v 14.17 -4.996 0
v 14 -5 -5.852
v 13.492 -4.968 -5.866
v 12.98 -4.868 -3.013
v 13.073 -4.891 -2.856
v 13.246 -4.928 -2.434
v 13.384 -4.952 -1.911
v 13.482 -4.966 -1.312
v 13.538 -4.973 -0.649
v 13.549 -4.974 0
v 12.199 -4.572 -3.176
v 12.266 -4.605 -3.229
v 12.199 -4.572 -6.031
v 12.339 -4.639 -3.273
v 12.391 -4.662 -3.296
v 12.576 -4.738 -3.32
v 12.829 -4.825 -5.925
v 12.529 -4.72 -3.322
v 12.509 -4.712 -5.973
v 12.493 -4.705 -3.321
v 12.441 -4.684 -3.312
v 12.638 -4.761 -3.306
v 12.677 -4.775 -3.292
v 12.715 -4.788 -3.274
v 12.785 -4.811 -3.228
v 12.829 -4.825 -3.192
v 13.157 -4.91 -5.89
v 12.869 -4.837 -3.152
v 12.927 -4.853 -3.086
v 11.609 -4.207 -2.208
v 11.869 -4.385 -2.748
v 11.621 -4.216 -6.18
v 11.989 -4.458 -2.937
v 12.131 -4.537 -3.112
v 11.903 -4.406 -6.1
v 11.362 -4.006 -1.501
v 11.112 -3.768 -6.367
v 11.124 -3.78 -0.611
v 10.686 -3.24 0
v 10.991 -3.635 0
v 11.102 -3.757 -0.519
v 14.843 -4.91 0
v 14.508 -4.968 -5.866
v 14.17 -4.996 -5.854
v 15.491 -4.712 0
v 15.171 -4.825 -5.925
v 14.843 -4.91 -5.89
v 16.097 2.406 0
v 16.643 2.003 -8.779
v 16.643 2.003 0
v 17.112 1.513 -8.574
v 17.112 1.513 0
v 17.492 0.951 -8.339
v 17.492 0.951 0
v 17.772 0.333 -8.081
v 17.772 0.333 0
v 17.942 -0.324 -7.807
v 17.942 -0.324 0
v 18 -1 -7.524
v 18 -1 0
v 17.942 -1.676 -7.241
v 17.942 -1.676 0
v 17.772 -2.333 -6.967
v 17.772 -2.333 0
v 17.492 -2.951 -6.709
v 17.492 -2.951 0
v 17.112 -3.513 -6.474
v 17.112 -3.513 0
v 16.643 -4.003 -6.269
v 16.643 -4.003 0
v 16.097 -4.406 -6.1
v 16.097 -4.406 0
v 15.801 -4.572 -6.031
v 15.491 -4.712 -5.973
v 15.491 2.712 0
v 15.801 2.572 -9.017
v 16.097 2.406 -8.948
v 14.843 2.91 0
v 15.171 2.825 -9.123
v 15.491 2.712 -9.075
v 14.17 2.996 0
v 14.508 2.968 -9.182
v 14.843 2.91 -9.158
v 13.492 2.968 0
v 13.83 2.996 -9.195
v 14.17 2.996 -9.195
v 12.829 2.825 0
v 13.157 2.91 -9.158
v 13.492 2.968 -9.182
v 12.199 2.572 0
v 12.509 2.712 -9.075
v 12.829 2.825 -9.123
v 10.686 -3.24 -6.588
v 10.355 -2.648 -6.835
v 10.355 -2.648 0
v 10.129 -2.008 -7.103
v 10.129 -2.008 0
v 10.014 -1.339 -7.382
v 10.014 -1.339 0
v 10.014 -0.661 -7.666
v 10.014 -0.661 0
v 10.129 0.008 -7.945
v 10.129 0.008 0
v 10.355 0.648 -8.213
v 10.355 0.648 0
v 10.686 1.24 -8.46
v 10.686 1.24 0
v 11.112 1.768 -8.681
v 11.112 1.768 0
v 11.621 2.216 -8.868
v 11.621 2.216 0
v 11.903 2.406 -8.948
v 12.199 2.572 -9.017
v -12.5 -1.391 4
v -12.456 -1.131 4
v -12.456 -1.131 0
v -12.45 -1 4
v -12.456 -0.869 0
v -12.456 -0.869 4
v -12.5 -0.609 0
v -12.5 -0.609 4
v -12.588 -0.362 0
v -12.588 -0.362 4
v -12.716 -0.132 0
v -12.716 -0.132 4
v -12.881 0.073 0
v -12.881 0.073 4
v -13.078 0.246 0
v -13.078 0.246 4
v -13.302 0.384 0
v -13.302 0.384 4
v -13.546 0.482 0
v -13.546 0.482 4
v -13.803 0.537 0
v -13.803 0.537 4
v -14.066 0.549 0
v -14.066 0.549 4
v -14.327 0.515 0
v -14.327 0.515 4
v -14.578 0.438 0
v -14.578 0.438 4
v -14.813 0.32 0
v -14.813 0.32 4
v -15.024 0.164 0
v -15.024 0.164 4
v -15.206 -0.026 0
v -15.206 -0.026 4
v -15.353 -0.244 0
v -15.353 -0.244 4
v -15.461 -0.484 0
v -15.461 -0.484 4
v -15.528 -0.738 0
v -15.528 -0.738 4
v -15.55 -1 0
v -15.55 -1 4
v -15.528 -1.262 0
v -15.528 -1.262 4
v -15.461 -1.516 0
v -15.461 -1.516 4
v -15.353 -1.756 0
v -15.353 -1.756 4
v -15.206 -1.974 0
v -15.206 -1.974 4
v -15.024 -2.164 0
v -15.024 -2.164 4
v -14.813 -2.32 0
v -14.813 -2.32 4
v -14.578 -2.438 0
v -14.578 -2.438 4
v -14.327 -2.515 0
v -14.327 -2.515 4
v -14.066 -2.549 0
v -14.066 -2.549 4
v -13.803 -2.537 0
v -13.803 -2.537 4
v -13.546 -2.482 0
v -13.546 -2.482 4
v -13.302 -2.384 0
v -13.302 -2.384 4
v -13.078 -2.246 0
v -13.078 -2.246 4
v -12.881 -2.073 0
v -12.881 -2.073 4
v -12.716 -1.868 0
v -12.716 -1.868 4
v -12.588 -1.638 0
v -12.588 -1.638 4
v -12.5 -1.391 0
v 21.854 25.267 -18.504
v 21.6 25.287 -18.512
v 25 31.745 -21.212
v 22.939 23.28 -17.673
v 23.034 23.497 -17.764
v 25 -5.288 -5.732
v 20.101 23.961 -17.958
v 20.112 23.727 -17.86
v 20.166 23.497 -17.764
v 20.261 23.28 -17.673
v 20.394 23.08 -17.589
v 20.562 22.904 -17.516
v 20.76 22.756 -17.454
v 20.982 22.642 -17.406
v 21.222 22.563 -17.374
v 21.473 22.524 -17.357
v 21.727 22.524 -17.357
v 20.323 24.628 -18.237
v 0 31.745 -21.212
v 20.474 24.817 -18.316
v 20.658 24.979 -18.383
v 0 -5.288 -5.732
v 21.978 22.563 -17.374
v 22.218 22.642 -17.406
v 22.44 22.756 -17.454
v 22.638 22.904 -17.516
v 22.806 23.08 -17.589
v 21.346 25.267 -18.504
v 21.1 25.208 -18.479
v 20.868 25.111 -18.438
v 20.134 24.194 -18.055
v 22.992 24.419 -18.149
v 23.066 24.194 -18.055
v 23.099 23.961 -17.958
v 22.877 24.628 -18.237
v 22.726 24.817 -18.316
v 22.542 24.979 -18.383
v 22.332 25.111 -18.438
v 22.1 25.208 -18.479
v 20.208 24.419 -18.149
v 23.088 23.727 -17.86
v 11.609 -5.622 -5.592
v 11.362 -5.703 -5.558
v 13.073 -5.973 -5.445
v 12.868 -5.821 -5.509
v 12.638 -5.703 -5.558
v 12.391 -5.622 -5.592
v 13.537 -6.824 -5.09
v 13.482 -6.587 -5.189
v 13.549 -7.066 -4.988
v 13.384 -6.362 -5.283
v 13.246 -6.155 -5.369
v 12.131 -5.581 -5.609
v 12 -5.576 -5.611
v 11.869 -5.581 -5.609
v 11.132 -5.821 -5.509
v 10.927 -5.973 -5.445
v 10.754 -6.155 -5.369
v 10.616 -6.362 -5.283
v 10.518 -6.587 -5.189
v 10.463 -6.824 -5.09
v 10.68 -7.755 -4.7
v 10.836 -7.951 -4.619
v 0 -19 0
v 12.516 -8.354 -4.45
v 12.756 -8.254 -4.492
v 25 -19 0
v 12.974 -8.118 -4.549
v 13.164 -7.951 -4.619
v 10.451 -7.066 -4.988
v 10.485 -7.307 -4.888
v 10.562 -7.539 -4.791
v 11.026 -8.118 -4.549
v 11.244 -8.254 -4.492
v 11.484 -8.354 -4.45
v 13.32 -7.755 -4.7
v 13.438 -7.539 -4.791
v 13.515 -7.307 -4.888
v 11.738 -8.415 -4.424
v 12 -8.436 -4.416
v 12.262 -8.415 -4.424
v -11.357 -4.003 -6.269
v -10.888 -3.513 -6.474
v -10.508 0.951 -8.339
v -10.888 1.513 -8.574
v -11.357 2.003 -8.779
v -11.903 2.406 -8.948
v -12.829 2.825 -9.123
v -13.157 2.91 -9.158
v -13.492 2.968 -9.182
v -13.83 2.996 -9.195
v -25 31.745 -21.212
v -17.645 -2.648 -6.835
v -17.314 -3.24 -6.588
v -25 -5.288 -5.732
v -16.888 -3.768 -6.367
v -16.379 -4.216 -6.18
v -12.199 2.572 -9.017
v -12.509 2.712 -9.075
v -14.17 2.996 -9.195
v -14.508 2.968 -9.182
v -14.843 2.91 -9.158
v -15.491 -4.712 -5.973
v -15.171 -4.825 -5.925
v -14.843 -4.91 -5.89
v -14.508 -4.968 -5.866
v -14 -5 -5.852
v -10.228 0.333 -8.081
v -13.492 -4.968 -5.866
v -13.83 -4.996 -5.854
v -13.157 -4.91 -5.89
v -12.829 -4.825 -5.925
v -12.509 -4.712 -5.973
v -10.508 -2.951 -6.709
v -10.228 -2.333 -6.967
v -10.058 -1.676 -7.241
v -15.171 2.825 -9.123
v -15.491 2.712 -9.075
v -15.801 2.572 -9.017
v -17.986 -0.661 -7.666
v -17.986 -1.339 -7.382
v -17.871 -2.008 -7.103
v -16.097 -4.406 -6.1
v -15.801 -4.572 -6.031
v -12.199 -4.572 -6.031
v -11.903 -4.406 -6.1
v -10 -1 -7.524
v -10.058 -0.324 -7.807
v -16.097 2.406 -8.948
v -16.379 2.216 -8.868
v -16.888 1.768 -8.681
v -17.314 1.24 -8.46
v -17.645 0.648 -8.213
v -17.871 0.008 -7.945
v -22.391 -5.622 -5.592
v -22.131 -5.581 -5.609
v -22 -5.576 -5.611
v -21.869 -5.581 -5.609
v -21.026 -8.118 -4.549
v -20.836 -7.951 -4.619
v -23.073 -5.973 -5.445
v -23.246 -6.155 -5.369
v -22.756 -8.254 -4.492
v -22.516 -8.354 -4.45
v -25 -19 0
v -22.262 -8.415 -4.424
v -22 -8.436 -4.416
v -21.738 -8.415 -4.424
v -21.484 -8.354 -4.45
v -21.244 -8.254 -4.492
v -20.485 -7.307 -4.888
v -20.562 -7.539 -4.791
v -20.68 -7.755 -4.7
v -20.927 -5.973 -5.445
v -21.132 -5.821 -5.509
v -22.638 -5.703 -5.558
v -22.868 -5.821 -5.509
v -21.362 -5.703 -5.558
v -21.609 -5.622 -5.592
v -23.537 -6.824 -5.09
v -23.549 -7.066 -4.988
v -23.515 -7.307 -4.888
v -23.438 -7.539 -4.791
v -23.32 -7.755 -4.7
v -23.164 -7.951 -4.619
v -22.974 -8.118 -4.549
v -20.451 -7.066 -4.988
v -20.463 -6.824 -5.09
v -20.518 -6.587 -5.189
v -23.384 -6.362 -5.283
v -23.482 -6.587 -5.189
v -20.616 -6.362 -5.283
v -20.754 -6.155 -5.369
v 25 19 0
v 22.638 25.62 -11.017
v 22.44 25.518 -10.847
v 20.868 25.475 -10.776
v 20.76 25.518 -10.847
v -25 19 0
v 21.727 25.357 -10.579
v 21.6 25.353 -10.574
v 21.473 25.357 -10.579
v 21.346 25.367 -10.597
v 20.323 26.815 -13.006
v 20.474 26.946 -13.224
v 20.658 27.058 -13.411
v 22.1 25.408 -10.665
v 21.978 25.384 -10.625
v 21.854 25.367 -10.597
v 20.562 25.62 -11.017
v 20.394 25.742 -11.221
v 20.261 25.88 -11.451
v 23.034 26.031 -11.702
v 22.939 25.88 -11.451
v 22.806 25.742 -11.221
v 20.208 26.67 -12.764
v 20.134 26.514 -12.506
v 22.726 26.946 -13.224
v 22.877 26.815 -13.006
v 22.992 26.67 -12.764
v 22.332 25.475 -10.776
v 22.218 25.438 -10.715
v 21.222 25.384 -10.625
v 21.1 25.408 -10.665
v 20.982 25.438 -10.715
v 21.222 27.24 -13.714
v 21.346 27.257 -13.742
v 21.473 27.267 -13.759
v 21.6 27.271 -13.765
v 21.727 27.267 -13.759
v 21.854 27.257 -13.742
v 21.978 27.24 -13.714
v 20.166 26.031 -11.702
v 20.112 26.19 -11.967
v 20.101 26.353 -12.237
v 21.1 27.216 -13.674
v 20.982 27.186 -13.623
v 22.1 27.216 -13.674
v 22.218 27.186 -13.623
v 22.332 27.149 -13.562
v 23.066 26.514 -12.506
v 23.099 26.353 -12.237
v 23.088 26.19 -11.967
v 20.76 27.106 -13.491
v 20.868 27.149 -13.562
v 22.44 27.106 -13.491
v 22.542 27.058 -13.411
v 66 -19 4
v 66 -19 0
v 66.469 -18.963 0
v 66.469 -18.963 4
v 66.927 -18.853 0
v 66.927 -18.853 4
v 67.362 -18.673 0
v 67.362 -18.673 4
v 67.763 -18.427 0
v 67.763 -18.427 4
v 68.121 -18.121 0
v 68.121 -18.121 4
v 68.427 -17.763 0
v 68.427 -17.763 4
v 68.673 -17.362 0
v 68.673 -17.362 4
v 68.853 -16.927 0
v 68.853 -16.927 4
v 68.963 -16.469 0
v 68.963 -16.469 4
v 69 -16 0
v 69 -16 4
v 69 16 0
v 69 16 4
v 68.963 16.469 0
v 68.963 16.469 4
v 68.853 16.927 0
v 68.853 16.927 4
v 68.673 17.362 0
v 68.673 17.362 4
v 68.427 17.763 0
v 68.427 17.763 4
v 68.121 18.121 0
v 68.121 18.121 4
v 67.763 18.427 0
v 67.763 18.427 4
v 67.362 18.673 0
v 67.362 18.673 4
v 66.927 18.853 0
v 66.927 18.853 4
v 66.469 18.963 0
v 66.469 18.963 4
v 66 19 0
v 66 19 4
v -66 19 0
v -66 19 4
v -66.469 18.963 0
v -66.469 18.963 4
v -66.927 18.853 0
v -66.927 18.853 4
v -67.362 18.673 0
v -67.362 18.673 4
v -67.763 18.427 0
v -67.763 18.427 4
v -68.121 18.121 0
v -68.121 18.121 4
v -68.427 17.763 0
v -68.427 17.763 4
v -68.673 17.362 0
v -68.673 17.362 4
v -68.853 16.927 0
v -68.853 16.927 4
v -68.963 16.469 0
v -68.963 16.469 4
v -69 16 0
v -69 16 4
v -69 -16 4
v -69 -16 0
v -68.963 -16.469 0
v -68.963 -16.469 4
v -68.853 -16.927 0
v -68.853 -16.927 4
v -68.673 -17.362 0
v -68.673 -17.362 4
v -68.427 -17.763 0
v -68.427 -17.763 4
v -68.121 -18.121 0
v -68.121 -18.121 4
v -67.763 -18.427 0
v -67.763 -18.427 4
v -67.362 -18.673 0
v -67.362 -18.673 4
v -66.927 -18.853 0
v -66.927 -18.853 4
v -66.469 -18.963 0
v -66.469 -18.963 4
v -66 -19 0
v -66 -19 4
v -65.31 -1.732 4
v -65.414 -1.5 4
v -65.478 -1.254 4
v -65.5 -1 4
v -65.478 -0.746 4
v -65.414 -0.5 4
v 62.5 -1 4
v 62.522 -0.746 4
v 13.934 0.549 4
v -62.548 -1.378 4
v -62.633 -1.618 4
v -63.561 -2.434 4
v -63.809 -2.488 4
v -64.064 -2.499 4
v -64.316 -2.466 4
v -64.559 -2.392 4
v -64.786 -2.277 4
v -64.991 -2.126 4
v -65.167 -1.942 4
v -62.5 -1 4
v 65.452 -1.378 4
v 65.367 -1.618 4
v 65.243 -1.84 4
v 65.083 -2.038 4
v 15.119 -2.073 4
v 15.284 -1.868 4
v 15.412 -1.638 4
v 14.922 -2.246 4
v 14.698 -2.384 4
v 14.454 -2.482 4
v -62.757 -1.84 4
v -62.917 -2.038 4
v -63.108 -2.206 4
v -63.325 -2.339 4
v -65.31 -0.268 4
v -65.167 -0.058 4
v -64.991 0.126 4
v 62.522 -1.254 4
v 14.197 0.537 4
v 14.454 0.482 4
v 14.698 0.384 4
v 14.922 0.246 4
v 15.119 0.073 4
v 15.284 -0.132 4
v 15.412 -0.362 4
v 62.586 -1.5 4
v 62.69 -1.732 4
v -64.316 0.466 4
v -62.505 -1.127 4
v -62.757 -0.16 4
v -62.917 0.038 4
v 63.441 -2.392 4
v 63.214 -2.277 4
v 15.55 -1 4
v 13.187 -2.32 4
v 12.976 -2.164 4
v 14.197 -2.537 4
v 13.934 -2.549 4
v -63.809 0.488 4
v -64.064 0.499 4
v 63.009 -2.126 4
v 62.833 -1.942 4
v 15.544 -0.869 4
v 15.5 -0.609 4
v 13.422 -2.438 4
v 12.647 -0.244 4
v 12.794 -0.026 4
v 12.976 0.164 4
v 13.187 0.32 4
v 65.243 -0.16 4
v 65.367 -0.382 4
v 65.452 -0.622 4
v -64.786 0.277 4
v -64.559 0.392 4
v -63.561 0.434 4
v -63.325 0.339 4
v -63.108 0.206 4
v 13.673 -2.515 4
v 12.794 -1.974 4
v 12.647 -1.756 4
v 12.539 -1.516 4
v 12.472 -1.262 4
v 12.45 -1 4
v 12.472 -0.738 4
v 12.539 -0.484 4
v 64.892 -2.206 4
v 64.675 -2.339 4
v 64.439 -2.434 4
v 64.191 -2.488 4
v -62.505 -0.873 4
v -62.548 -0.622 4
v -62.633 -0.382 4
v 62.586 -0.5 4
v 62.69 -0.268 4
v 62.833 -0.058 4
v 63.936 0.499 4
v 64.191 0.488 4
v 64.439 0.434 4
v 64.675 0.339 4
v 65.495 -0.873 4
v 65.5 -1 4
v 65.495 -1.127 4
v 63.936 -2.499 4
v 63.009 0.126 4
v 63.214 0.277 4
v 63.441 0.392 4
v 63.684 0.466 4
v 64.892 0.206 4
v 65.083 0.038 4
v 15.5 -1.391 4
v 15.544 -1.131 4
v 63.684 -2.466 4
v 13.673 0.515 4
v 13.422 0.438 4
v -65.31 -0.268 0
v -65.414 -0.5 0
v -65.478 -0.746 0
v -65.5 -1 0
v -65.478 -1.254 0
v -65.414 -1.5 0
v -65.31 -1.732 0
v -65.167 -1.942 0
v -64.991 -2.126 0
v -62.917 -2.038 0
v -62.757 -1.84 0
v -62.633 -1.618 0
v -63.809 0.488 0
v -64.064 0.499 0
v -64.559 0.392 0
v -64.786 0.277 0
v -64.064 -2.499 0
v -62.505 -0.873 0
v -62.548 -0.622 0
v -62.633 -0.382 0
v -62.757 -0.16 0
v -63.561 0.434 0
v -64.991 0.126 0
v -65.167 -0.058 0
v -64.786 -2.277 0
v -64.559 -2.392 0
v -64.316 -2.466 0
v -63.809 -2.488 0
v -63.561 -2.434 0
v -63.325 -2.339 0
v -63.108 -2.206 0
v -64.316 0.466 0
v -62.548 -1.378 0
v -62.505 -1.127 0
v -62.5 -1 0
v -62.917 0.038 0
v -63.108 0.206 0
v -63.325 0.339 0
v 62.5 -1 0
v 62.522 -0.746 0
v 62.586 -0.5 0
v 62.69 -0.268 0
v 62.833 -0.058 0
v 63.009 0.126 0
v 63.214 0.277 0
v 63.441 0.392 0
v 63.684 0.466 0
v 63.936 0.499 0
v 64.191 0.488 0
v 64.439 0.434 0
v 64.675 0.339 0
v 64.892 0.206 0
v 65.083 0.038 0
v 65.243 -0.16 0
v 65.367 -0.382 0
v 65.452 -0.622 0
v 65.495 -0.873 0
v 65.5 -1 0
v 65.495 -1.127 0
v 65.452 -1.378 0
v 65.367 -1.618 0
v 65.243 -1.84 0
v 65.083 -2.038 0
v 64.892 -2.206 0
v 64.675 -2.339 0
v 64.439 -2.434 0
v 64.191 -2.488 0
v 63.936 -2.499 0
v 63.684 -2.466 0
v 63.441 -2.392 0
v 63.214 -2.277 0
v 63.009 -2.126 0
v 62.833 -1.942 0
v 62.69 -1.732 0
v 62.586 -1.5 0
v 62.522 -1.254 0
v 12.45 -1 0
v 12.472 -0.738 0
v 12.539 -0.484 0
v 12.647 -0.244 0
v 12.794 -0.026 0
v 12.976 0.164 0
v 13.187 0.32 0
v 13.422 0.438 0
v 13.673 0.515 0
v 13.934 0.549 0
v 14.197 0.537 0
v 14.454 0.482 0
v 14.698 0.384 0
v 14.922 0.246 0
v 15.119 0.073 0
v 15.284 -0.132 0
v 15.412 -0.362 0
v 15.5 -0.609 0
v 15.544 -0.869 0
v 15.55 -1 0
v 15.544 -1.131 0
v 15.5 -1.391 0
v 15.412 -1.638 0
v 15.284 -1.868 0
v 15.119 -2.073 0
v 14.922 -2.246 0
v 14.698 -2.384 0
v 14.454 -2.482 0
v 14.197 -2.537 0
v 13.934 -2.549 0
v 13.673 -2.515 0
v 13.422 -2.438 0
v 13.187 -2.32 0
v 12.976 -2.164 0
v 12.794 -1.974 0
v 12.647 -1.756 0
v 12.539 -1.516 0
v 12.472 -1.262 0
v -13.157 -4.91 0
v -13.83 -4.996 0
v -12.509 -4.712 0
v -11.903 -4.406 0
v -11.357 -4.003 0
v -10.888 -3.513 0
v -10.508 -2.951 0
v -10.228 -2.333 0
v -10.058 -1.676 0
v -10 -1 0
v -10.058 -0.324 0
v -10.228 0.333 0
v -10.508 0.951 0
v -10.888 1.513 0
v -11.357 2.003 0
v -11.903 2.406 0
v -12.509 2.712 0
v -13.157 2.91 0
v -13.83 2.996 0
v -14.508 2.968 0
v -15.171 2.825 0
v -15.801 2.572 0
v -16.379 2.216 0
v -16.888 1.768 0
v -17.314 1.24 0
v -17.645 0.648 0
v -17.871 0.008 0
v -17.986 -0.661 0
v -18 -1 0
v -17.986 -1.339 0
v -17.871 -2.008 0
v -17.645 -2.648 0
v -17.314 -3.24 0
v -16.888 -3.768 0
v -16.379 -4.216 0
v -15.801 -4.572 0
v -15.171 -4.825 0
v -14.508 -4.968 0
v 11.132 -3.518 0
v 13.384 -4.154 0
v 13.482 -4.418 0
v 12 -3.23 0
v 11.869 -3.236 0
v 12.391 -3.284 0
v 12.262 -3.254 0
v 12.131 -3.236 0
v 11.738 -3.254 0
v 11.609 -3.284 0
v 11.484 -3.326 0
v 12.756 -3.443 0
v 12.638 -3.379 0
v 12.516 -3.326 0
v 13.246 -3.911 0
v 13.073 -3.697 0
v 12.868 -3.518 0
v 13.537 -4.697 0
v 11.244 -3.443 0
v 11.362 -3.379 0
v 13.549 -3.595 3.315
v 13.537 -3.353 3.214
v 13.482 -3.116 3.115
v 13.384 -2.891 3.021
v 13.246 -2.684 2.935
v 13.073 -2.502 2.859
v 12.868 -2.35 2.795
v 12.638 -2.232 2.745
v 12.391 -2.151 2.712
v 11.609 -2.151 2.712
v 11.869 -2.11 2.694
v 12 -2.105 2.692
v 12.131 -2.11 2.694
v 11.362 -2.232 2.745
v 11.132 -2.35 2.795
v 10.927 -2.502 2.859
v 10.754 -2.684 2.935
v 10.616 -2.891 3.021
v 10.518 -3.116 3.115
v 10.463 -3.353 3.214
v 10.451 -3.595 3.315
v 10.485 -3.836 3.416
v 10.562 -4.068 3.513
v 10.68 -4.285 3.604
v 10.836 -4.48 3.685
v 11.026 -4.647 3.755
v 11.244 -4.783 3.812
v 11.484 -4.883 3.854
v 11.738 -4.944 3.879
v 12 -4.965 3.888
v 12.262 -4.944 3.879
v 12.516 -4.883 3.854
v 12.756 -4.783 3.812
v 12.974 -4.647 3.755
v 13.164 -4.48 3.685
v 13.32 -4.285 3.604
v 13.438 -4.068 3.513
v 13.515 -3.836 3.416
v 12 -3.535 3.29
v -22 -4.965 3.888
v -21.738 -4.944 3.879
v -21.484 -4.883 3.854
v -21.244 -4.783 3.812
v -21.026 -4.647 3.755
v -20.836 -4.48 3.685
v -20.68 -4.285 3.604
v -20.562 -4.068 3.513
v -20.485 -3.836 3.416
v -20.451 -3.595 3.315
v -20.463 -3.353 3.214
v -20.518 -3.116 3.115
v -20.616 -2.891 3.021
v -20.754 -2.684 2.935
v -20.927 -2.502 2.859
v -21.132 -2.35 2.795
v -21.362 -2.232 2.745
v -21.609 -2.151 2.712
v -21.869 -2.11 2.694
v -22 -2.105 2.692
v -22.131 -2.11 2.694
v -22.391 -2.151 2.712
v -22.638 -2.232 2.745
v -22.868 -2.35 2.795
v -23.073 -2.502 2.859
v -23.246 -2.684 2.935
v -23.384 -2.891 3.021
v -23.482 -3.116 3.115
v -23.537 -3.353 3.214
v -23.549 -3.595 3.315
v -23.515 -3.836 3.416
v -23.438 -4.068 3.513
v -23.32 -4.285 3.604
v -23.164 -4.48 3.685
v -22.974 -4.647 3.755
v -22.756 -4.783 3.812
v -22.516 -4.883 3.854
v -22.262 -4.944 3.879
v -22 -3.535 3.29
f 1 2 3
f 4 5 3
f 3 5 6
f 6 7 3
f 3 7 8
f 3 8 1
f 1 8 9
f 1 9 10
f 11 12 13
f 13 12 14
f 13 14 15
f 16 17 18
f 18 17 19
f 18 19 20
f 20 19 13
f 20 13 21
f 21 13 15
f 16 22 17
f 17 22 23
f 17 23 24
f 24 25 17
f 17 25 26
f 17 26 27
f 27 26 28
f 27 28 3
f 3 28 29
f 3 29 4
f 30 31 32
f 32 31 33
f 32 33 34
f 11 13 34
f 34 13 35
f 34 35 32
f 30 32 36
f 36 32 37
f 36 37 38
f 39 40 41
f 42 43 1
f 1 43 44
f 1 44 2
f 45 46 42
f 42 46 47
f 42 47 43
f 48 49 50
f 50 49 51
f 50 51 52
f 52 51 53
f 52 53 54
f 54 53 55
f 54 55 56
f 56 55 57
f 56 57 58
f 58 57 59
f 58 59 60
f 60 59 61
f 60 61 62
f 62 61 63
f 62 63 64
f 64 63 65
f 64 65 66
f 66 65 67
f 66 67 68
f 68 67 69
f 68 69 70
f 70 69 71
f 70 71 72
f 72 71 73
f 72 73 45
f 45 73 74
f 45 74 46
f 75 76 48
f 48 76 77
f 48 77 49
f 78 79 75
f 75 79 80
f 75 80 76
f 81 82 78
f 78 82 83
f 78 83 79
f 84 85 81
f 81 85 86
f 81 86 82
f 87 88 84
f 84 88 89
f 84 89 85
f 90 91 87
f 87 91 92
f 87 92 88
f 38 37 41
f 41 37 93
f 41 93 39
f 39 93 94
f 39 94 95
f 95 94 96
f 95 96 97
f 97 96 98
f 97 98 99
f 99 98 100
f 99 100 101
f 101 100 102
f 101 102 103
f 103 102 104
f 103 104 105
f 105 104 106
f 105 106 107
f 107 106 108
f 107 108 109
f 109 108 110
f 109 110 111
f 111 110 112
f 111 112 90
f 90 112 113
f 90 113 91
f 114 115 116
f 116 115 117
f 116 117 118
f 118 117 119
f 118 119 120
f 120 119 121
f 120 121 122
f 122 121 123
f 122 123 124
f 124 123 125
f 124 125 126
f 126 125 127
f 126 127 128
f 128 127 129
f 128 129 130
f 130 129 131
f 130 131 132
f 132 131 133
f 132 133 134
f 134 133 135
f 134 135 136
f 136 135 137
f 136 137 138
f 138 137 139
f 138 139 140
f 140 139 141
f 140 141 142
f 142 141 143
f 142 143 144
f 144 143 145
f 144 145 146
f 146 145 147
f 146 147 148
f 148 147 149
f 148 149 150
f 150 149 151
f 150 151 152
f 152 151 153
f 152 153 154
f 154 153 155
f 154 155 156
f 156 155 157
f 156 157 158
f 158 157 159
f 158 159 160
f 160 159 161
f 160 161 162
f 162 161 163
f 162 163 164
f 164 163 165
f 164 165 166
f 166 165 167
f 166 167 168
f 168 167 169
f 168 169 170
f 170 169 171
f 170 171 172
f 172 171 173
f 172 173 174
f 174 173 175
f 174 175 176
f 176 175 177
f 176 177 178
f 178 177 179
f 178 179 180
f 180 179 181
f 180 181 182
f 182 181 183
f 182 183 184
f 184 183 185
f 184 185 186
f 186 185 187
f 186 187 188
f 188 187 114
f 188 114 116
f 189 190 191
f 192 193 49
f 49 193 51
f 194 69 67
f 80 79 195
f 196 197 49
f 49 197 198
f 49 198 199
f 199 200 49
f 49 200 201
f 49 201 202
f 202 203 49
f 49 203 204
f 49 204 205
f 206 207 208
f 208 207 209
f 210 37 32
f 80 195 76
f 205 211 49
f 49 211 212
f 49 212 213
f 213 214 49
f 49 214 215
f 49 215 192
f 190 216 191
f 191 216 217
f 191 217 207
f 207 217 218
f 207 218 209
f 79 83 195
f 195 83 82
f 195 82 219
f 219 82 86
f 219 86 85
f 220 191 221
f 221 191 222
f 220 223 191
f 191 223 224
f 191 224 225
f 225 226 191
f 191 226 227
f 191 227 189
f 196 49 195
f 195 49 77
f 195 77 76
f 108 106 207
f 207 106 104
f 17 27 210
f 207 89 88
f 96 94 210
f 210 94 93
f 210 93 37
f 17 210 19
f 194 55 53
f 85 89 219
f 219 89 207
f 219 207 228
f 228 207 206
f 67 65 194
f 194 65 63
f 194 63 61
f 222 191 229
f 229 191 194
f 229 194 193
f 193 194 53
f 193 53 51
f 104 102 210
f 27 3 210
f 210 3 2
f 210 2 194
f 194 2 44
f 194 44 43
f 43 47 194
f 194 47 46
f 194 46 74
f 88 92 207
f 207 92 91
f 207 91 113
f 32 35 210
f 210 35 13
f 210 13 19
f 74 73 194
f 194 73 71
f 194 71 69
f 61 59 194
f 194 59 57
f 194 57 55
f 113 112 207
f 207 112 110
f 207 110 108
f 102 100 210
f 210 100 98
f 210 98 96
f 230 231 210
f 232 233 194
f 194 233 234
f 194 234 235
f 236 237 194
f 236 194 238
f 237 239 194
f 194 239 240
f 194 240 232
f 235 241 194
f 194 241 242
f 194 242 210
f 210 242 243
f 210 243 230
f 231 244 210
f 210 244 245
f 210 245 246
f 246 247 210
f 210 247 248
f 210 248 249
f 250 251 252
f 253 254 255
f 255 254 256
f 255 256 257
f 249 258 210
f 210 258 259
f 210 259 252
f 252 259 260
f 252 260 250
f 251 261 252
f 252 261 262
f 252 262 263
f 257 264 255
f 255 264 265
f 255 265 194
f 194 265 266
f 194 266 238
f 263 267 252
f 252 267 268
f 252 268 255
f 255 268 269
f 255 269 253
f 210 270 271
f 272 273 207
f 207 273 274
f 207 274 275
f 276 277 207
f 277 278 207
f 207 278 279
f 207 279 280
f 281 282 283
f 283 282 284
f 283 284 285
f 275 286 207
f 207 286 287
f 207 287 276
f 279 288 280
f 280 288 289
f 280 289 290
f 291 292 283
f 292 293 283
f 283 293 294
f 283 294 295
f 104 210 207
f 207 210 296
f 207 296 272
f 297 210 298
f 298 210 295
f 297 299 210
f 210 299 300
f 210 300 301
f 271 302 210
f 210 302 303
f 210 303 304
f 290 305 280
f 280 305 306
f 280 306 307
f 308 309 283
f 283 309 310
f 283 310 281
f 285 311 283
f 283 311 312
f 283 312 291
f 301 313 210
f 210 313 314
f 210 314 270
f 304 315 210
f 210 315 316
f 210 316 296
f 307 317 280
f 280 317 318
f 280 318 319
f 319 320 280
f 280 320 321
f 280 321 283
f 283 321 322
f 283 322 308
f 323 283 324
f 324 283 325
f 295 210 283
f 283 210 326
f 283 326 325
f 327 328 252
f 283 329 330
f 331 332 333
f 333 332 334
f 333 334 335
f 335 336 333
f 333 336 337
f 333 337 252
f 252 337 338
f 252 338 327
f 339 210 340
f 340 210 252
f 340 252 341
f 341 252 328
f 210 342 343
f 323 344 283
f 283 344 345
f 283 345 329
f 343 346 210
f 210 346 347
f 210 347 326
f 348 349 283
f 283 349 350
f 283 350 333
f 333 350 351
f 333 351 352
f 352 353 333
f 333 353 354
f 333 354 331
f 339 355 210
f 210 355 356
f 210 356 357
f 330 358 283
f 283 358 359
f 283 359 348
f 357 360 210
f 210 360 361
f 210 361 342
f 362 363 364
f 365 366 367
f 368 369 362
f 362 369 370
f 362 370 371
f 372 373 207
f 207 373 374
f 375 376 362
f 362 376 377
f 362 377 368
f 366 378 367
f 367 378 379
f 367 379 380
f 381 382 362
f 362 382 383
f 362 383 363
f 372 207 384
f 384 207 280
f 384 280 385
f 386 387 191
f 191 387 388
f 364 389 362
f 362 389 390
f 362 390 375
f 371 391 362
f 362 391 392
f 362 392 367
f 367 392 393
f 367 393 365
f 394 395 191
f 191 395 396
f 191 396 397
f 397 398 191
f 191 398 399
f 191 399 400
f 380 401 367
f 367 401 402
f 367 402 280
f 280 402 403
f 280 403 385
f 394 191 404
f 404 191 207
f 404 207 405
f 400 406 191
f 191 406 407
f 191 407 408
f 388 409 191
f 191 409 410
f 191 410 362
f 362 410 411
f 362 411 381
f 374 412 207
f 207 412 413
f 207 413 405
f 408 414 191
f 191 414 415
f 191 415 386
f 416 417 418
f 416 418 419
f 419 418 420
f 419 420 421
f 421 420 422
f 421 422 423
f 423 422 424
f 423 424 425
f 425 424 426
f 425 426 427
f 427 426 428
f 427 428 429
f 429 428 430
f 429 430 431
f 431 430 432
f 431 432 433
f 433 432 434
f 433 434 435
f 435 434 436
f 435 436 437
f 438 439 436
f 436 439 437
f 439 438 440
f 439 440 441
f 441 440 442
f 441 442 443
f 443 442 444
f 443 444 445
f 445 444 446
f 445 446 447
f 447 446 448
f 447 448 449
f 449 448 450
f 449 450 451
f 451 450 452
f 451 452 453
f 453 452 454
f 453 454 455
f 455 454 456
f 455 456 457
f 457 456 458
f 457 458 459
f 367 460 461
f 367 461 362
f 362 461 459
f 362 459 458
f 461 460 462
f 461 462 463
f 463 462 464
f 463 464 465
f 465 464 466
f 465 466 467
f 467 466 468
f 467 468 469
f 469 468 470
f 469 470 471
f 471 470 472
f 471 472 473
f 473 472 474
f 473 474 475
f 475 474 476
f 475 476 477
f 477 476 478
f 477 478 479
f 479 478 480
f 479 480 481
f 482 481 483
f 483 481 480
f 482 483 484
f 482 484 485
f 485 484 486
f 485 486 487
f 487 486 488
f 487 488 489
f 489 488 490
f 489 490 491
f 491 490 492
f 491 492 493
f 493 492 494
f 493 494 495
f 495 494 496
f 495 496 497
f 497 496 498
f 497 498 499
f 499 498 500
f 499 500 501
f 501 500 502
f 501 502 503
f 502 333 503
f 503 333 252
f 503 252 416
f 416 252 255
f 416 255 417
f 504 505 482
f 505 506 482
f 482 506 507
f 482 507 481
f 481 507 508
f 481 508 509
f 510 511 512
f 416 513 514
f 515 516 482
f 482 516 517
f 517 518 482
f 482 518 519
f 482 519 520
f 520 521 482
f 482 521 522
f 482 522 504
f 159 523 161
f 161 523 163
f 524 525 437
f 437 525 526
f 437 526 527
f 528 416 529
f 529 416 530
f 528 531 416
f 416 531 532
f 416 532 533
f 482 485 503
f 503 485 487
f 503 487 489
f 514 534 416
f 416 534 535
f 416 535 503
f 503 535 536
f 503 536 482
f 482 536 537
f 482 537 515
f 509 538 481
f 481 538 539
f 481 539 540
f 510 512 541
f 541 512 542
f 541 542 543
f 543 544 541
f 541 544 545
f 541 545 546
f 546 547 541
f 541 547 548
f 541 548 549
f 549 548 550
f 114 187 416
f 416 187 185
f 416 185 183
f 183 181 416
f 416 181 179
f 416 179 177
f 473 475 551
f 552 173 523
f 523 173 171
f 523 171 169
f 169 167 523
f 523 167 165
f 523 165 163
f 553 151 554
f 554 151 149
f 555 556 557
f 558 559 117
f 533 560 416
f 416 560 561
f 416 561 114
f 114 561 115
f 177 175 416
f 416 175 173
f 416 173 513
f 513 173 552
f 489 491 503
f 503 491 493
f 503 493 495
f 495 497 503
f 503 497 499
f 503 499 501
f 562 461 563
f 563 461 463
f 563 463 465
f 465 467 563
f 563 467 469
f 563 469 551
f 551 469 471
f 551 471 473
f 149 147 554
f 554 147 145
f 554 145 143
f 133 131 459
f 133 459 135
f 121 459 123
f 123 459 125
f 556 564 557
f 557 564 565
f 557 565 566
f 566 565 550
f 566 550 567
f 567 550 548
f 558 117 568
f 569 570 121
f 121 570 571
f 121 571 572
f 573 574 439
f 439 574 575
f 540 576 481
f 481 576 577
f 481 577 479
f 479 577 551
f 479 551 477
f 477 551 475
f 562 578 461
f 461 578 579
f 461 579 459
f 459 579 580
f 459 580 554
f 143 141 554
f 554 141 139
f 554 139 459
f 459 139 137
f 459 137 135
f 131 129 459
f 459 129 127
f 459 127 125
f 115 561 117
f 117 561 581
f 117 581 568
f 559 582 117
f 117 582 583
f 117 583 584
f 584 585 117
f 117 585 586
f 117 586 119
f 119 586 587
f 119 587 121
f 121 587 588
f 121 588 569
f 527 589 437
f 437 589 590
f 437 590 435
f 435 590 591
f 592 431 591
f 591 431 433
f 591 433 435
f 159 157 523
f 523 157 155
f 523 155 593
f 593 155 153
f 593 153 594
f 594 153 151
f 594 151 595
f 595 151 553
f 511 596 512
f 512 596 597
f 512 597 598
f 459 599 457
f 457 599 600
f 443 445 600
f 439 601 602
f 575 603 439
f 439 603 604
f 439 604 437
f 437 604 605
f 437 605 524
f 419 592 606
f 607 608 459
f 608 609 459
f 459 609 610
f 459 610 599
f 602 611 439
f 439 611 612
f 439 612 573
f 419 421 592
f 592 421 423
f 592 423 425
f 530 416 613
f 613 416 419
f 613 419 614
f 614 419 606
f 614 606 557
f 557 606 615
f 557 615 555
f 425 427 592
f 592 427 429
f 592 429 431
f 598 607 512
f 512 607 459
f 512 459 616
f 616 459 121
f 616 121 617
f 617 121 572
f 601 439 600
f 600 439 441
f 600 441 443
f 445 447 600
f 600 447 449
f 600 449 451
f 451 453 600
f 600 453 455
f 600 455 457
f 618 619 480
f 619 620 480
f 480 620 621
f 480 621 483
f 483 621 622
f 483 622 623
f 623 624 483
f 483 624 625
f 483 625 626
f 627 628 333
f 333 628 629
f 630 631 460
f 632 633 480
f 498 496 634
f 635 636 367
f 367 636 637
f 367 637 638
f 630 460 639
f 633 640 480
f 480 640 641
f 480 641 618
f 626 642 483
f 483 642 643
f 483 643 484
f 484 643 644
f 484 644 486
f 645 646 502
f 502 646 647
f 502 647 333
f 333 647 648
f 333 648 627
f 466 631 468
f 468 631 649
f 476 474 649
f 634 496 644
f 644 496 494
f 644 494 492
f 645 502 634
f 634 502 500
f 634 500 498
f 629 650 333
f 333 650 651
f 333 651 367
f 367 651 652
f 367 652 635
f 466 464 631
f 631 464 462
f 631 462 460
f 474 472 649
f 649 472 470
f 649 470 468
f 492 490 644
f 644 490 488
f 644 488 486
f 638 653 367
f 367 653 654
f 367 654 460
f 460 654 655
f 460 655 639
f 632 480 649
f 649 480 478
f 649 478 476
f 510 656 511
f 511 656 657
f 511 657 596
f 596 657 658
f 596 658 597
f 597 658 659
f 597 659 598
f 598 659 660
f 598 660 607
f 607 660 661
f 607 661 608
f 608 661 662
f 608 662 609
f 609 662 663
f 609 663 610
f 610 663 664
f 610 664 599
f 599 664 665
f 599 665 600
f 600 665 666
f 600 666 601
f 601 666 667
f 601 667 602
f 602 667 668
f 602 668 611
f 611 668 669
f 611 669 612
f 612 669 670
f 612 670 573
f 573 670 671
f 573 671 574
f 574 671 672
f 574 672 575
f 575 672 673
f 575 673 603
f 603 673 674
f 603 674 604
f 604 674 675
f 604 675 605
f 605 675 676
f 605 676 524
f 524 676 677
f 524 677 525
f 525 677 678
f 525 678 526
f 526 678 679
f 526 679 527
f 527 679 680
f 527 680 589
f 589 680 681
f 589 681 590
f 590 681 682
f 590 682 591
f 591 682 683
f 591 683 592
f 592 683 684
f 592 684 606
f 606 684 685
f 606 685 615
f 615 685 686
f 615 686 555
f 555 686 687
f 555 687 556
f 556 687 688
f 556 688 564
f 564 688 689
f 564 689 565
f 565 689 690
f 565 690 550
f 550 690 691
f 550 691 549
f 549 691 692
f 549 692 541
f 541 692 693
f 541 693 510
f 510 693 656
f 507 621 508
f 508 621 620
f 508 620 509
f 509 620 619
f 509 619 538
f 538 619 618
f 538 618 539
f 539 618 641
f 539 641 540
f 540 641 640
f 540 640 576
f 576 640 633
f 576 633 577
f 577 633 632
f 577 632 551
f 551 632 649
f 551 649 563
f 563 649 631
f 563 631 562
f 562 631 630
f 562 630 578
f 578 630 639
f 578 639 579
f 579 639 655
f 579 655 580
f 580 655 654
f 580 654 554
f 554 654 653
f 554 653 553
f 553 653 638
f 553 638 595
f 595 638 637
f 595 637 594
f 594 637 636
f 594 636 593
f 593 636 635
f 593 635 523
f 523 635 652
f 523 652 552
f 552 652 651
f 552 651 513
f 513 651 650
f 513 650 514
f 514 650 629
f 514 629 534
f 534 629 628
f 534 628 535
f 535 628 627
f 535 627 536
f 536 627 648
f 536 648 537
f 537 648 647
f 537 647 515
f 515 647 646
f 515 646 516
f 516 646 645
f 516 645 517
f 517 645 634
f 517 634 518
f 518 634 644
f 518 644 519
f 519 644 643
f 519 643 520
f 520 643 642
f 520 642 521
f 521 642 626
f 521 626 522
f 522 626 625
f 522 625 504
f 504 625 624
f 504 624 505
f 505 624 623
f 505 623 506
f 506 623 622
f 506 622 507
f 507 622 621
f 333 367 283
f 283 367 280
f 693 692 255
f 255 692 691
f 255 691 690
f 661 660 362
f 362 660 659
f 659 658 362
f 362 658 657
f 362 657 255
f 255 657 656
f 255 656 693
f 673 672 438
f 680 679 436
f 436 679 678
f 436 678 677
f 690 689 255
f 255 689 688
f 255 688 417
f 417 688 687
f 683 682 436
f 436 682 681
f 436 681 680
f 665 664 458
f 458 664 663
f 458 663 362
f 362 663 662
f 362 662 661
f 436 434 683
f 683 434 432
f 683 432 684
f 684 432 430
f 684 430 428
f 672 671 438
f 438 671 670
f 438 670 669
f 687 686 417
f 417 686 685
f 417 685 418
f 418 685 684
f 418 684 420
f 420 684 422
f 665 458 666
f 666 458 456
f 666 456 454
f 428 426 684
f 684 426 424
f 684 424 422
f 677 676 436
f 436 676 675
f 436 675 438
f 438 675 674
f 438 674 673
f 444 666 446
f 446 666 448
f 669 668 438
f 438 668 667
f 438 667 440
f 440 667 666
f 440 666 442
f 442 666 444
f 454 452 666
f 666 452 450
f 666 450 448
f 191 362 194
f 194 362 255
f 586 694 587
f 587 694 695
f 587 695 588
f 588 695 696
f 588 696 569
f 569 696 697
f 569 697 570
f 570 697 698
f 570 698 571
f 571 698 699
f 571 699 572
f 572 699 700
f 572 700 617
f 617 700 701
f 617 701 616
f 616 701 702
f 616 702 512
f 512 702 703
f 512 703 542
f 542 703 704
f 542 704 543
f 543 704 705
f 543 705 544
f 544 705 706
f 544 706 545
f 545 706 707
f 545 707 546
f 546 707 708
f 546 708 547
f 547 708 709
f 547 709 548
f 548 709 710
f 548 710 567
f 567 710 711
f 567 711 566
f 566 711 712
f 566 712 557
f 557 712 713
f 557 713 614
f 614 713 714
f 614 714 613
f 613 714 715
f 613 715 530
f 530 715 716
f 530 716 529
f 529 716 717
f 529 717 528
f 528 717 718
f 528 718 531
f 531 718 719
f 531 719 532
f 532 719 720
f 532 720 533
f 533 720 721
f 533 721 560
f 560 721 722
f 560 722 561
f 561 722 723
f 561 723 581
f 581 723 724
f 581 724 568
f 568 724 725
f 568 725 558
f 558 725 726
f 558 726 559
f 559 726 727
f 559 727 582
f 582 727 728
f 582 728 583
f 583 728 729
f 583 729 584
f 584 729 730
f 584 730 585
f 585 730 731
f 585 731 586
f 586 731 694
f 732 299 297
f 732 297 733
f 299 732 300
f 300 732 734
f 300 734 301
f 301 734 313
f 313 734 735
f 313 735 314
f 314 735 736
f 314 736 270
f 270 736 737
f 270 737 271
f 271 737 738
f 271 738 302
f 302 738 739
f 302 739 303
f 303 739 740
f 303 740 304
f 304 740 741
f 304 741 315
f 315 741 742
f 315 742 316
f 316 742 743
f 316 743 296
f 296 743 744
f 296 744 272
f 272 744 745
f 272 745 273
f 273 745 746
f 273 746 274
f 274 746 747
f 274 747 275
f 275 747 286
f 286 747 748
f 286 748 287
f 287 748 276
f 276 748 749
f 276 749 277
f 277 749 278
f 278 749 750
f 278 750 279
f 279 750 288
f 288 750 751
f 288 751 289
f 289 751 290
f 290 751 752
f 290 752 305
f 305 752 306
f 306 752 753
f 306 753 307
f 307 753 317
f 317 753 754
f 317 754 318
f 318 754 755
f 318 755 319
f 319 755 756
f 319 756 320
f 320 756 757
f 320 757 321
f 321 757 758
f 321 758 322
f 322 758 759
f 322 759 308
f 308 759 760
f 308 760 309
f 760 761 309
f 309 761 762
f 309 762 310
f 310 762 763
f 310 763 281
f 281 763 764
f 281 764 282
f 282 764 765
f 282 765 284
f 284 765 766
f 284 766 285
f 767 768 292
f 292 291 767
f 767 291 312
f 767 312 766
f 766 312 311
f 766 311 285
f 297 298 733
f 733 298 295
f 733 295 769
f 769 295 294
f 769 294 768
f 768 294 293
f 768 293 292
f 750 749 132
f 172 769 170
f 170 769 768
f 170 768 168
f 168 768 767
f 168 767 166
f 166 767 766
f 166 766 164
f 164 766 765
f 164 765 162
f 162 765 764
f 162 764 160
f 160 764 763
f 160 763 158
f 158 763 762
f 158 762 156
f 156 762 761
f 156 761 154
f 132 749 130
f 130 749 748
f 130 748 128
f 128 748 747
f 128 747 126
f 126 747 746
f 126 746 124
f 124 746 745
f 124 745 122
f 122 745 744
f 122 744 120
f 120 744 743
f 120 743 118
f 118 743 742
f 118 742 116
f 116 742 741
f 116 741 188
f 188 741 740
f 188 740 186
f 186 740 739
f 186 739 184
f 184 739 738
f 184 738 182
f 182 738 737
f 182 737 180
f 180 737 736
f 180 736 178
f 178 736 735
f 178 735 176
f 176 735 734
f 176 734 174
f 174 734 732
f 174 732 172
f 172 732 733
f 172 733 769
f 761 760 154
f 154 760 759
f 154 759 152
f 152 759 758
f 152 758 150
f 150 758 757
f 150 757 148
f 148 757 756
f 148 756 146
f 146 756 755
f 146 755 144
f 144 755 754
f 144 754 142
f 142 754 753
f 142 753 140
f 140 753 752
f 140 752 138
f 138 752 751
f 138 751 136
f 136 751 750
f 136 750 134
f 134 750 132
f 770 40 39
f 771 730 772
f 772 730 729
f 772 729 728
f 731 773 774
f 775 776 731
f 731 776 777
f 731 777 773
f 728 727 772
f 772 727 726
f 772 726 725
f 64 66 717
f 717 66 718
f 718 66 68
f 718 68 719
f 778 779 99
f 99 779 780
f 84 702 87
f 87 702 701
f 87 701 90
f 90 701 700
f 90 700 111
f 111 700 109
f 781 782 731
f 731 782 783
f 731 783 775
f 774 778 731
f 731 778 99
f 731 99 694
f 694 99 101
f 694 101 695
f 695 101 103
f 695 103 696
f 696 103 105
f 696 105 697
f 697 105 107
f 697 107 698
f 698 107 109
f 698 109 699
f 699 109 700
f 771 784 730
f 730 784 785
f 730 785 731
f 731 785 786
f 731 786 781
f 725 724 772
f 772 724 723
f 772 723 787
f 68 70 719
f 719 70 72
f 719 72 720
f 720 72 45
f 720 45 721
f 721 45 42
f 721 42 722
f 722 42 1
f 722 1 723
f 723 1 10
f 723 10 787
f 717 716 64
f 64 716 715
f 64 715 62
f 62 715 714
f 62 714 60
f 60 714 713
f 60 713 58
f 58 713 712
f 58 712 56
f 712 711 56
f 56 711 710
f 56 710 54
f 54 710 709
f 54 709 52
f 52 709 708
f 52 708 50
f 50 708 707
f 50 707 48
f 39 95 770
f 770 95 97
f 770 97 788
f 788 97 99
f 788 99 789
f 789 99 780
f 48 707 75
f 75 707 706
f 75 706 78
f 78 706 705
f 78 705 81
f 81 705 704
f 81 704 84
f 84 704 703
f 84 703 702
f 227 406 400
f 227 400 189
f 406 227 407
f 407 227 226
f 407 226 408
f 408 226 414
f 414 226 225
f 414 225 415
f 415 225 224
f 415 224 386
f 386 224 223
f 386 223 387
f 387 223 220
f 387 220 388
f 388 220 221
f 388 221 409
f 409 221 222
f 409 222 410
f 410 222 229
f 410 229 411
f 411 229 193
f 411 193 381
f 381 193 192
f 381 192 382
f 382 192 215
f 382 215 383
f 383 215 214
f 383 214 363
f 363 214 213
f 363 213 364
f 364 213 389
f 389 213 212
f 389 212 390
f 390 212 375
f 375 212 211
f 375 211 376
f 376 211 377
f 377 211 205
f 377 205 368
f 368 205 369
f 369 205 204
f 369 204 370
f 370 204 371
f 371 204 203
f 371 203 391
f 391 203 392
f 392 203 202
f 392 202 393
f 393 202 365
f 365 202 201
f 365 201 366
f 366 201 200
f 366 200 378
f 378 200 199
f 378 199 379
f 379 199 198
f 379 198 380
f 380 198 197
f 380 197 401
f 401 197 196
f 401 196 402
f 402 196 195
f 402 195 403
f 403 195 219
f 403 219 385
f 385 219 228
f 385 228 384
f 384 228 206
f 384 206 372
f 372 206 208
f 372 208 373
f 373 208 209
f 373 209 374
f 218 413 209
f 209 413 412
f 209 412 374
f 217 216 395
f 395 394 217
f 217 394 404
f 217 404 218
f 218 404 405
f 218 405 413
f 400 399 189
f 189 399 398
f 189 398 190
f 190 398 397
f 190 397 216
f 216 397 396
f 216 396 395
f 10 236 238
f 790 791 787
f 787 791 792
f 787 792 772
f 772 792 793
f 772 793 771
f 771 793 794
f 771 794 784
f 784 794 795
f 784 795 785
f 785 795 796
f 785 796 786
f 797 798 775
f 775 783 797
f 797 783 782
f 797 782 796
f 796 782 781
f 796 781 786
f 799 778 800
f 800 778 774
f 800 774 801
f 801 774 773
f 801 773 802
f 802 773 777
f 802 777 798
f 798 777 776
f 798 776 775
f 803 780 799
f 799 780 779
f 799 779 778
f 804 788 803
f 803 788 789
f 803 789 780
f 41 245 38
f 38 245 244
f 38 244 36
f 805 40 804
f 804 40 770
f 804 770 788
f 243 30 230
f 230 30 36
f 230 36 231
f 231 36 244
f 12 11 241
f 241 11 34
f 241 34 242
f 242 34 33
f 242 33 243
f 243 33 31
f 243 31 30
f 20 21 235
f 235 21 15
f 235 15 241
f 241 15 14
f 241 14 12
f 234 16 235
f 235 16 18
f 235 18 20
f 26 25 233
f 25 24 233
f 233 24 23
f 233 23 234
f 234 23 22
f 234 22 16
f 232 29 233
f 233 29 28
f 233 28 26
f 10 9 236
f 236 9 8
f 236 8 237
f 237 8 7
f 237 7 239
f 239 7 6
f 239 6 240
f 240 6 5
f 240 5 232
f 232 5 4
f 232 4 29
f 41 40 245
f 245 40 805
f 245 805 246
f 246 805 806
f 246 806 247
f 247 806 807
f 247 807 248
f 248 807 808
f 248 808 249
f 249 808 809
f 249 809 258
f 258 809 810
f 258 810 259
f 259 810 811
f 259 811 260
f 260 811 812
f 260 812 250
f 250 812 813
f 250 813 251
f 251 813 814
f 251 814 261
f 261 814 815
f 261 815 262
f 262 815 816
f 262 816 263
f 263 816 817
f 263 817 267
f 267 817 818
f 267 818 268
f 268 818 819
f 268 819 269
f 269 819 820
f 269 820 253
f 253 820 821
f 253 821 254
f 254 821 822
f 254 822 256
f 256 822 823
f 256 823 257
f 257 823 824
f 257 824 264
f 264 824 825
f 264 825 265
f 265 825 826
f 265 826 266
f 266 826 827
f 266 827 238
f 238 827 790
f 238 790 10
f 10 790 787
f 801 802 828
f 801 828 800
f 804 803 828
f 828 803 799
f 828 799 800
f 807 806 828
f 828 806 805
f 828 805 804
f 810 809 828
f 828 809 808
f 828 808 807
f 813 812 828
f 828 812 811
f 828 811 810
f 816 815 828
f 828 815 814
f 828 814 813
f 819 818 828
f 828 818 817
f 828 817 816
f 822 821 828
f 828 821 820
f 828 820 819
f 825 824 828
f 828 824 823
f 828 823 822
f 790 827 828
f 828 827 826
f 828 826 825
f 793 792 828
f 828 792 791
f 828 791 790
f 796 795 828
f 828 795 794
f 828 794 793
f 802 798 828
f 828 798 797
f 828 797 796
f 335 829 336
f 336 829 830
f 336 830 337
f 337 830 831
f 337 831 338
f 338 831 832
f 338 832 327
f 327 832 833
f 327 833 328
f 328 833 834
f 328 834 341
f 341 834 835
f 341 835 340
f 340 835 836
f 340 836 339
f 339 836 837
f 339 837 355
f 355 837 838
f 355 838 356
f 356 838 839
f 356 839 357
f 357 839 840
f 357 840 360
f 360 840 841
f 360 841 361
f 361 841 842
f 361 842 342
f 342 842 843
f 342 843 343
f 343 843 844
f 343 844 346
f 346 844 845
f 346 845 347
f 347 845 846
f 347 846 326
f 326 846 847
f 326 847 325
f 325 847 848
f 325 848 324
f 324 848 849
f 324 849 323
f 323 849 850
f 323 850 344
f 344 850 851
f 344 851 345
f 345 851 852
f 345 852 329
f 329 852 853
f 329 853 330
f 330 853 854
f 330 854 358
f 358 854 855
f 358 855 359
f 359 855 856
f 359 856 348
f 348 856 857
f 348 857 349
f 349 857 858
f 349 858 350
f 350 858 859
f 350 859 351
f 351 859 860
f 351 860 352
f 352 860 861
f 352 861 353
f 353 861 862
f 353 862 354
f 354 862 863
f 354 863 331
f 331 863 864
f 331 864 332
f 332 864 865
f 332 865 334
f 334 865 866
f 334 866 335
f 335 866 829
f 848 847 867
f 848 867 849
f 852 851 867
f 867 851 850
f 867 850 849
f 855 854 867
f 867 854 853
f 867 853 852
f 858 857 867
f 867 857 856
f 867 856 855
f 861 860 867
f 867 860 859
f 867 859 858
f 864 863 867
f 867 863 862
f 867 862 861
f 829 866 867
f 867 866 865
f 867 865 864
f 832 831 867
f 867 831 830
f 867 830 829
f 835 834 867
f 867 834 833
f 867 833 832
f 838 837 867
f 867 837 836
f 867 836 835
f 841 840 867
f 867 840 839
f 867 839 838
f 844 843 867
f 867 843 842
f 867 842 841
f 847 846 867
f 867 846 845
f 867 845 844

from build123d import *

# Parameters (mm, degrees)
SALIENTE_EXTRUIR1_DEPTH    = 4
CORTAR_EXTRUIR1_DEPTH      = 13
CORTAR_EXTRUIR1_DEPTH_BACK = 4
CROQUIS2_R                 = 1.5
SALIENTE_EXTRUIR5_DEPTH    = 94
CORTAR_EXTRUIR2_DEPTH      = 44
CORTAR_EXTRUIR3_DEPTH      = 44
CORTAR_EXTRUIR3_DEPTH_BACK = 44
CROQUIS10_R                = 1.55
CROQUIS15_R                = 4
CORTAR_EXTRUIR5_DEPTH      = 14
CROQUIS17_R                = 1.5
CORTAR_EXTRUIR6_DEPTH      = 16
CORTAR_EXTRUIR9_DEPTH      = 18
CORTAR_EXTRUIR9_DEPTH_BACK = 9
CROQUIS19_R                = 1.55


with BuildPart() as part:
    # Croquis1 → Saliente-Extruir1 (new body)
    with BuildSketch(Plane.XY):
        with BuildLine():
            Line((-66, -19), (66, -19))
            ThreePointArc((66, -19), (68.121320344, -18.121320344), (69, -16))
            Line((69, -16), (69, 16))
            ThreePointArc((69, 16), (68.121320344, 18.121320344), (66, 19))
            Line((66, 19), (-66, 19))
            ThreePointArc((-66, 19), (-68.121320344, 18.121320344), (-69, 16))
            Line((-69, 16), (-69, -16))
            ThreePointArc((-69, -16), (-68.121320344, -18.121320344), (-66, -19))
        make_face()
    extrude(amount=SALIENTE_EXTRUIR1_DEPTH)

    # Croquis2 → Cortar-Extruir1 (cut, two sides: drawn at the far end of the back side and taken through both)
    with BuildSketch(Plane.XY.offset(-CORTAR_EXTRUIR1_DEPTH_BACK)):
        with Locations((-64, -1)):
            Circle(CROQUIS2_R)
        with Locations((64, -1)):
            Circle(CROQUIS2_R)
    extrude(amount=CORTAR_EXTRUIR1_DEPTH + CORTAR_EXTRUIR1_DEPTH_BACK, mode=Mode.SUBTRACT)

    # Croquis4 → Saliente-Extruir5 (add)
    with BuildSketch(Plane(origin=(69, 0, 0), x_dir=(0, 0, -1), z_dir=(1, 0, 0))):
        Polygon((0, -19), (21.2115146, 31.745163793), (0, 19), align=None)
    extrude(amount=-SALIENTE_EXTRUIR5_DEPTH)

    # Croquis6 → Cortar-Extruir2 (cut)
    with BuildSketch(Plane(origin=(69, 0, 0), x_dir=(0, 0, -1), z_dir=(1, 0, 0))):
        Polygon((0, -19), (0, 19), (21.2115146, 31.745163793), align=None)
    extrude(amount=-CORTAR_EXTRUIR2_DEPTH, mode=Mode.SUBTRACT)

    # Croquis10 → Cortar-Extruir3 (cut, two sides: drawn at the far end of the back side and taken through both)
    with BuildSketch(Plane.XY.offset(4).offset(-CORTAR_EXTRUIR3_DEPTH_BACK)):
        with Locations((-14, -1)):
            Circle(CROQUIS10_R)
        with Locations((14, -1)):
            Circle(CROQUIS10_R)
    extrude(amount=CORTAR_EXTRUIR3_DEPTH + CORTAR_EXTRUIR3_DEPTH_BACK, mode=Mode.SUBTRACT)

    # Croquis15 → Cortar-Extruir5 (cut)
    with BuildSketch(Plane.XY):
        with Locations((14, -1)):
            Circle(CROQUIS15_R)
        with Locations((-14, -1)):
            Circle(CROQUIS15_R)
    extrude(amount=-CORTAR_EXTRUIR5_DEPTH, mode=Mode.SUBTRACT)

    # Croquis17 → Cortar-Extruir6 (cut)
    with BuildSketch(Plane(origin=(0, -2.825996258, -6.760745081), x_dir=(-1, 0, 0), z_dir=(0, -0.38566390181618804, -0.9226393416909523))):
        with Locations((-21.6, 28.969852508)):
            Circle(CROQUIS17_R)
    extrude(amount=-CORTAR_EXTRUIR6_DEPTH, mode=Mode.SUBTRACT)

    # Croquis19 → Cortar-Extruir9 (cut, two sides: drawn at the far end of the back side and taken through both)
    with BuildSketch(Plane(origin=(0, -2.825996258, -6.760745081), x_dir=(-1, 0, 0), z_dir=(0, -0.385663901816188, -0.9226393416909522)).offset(-CORTAR_EXTRUIR9_DEPTH_BACK)):
        with Locations((22, -4.530147492)):
            Circle(CROQUIS19_R)
        with Locations((-12, -4.530147492)):
            Circle(CROQUIS19_R)
    extrude(amount=CORTAR_EXTRUIR9_DEPTH + CORTAR_EXTRUIR9_DEPTH_BACK, mode=Mode.SUBTRACT)


solid = part.part
